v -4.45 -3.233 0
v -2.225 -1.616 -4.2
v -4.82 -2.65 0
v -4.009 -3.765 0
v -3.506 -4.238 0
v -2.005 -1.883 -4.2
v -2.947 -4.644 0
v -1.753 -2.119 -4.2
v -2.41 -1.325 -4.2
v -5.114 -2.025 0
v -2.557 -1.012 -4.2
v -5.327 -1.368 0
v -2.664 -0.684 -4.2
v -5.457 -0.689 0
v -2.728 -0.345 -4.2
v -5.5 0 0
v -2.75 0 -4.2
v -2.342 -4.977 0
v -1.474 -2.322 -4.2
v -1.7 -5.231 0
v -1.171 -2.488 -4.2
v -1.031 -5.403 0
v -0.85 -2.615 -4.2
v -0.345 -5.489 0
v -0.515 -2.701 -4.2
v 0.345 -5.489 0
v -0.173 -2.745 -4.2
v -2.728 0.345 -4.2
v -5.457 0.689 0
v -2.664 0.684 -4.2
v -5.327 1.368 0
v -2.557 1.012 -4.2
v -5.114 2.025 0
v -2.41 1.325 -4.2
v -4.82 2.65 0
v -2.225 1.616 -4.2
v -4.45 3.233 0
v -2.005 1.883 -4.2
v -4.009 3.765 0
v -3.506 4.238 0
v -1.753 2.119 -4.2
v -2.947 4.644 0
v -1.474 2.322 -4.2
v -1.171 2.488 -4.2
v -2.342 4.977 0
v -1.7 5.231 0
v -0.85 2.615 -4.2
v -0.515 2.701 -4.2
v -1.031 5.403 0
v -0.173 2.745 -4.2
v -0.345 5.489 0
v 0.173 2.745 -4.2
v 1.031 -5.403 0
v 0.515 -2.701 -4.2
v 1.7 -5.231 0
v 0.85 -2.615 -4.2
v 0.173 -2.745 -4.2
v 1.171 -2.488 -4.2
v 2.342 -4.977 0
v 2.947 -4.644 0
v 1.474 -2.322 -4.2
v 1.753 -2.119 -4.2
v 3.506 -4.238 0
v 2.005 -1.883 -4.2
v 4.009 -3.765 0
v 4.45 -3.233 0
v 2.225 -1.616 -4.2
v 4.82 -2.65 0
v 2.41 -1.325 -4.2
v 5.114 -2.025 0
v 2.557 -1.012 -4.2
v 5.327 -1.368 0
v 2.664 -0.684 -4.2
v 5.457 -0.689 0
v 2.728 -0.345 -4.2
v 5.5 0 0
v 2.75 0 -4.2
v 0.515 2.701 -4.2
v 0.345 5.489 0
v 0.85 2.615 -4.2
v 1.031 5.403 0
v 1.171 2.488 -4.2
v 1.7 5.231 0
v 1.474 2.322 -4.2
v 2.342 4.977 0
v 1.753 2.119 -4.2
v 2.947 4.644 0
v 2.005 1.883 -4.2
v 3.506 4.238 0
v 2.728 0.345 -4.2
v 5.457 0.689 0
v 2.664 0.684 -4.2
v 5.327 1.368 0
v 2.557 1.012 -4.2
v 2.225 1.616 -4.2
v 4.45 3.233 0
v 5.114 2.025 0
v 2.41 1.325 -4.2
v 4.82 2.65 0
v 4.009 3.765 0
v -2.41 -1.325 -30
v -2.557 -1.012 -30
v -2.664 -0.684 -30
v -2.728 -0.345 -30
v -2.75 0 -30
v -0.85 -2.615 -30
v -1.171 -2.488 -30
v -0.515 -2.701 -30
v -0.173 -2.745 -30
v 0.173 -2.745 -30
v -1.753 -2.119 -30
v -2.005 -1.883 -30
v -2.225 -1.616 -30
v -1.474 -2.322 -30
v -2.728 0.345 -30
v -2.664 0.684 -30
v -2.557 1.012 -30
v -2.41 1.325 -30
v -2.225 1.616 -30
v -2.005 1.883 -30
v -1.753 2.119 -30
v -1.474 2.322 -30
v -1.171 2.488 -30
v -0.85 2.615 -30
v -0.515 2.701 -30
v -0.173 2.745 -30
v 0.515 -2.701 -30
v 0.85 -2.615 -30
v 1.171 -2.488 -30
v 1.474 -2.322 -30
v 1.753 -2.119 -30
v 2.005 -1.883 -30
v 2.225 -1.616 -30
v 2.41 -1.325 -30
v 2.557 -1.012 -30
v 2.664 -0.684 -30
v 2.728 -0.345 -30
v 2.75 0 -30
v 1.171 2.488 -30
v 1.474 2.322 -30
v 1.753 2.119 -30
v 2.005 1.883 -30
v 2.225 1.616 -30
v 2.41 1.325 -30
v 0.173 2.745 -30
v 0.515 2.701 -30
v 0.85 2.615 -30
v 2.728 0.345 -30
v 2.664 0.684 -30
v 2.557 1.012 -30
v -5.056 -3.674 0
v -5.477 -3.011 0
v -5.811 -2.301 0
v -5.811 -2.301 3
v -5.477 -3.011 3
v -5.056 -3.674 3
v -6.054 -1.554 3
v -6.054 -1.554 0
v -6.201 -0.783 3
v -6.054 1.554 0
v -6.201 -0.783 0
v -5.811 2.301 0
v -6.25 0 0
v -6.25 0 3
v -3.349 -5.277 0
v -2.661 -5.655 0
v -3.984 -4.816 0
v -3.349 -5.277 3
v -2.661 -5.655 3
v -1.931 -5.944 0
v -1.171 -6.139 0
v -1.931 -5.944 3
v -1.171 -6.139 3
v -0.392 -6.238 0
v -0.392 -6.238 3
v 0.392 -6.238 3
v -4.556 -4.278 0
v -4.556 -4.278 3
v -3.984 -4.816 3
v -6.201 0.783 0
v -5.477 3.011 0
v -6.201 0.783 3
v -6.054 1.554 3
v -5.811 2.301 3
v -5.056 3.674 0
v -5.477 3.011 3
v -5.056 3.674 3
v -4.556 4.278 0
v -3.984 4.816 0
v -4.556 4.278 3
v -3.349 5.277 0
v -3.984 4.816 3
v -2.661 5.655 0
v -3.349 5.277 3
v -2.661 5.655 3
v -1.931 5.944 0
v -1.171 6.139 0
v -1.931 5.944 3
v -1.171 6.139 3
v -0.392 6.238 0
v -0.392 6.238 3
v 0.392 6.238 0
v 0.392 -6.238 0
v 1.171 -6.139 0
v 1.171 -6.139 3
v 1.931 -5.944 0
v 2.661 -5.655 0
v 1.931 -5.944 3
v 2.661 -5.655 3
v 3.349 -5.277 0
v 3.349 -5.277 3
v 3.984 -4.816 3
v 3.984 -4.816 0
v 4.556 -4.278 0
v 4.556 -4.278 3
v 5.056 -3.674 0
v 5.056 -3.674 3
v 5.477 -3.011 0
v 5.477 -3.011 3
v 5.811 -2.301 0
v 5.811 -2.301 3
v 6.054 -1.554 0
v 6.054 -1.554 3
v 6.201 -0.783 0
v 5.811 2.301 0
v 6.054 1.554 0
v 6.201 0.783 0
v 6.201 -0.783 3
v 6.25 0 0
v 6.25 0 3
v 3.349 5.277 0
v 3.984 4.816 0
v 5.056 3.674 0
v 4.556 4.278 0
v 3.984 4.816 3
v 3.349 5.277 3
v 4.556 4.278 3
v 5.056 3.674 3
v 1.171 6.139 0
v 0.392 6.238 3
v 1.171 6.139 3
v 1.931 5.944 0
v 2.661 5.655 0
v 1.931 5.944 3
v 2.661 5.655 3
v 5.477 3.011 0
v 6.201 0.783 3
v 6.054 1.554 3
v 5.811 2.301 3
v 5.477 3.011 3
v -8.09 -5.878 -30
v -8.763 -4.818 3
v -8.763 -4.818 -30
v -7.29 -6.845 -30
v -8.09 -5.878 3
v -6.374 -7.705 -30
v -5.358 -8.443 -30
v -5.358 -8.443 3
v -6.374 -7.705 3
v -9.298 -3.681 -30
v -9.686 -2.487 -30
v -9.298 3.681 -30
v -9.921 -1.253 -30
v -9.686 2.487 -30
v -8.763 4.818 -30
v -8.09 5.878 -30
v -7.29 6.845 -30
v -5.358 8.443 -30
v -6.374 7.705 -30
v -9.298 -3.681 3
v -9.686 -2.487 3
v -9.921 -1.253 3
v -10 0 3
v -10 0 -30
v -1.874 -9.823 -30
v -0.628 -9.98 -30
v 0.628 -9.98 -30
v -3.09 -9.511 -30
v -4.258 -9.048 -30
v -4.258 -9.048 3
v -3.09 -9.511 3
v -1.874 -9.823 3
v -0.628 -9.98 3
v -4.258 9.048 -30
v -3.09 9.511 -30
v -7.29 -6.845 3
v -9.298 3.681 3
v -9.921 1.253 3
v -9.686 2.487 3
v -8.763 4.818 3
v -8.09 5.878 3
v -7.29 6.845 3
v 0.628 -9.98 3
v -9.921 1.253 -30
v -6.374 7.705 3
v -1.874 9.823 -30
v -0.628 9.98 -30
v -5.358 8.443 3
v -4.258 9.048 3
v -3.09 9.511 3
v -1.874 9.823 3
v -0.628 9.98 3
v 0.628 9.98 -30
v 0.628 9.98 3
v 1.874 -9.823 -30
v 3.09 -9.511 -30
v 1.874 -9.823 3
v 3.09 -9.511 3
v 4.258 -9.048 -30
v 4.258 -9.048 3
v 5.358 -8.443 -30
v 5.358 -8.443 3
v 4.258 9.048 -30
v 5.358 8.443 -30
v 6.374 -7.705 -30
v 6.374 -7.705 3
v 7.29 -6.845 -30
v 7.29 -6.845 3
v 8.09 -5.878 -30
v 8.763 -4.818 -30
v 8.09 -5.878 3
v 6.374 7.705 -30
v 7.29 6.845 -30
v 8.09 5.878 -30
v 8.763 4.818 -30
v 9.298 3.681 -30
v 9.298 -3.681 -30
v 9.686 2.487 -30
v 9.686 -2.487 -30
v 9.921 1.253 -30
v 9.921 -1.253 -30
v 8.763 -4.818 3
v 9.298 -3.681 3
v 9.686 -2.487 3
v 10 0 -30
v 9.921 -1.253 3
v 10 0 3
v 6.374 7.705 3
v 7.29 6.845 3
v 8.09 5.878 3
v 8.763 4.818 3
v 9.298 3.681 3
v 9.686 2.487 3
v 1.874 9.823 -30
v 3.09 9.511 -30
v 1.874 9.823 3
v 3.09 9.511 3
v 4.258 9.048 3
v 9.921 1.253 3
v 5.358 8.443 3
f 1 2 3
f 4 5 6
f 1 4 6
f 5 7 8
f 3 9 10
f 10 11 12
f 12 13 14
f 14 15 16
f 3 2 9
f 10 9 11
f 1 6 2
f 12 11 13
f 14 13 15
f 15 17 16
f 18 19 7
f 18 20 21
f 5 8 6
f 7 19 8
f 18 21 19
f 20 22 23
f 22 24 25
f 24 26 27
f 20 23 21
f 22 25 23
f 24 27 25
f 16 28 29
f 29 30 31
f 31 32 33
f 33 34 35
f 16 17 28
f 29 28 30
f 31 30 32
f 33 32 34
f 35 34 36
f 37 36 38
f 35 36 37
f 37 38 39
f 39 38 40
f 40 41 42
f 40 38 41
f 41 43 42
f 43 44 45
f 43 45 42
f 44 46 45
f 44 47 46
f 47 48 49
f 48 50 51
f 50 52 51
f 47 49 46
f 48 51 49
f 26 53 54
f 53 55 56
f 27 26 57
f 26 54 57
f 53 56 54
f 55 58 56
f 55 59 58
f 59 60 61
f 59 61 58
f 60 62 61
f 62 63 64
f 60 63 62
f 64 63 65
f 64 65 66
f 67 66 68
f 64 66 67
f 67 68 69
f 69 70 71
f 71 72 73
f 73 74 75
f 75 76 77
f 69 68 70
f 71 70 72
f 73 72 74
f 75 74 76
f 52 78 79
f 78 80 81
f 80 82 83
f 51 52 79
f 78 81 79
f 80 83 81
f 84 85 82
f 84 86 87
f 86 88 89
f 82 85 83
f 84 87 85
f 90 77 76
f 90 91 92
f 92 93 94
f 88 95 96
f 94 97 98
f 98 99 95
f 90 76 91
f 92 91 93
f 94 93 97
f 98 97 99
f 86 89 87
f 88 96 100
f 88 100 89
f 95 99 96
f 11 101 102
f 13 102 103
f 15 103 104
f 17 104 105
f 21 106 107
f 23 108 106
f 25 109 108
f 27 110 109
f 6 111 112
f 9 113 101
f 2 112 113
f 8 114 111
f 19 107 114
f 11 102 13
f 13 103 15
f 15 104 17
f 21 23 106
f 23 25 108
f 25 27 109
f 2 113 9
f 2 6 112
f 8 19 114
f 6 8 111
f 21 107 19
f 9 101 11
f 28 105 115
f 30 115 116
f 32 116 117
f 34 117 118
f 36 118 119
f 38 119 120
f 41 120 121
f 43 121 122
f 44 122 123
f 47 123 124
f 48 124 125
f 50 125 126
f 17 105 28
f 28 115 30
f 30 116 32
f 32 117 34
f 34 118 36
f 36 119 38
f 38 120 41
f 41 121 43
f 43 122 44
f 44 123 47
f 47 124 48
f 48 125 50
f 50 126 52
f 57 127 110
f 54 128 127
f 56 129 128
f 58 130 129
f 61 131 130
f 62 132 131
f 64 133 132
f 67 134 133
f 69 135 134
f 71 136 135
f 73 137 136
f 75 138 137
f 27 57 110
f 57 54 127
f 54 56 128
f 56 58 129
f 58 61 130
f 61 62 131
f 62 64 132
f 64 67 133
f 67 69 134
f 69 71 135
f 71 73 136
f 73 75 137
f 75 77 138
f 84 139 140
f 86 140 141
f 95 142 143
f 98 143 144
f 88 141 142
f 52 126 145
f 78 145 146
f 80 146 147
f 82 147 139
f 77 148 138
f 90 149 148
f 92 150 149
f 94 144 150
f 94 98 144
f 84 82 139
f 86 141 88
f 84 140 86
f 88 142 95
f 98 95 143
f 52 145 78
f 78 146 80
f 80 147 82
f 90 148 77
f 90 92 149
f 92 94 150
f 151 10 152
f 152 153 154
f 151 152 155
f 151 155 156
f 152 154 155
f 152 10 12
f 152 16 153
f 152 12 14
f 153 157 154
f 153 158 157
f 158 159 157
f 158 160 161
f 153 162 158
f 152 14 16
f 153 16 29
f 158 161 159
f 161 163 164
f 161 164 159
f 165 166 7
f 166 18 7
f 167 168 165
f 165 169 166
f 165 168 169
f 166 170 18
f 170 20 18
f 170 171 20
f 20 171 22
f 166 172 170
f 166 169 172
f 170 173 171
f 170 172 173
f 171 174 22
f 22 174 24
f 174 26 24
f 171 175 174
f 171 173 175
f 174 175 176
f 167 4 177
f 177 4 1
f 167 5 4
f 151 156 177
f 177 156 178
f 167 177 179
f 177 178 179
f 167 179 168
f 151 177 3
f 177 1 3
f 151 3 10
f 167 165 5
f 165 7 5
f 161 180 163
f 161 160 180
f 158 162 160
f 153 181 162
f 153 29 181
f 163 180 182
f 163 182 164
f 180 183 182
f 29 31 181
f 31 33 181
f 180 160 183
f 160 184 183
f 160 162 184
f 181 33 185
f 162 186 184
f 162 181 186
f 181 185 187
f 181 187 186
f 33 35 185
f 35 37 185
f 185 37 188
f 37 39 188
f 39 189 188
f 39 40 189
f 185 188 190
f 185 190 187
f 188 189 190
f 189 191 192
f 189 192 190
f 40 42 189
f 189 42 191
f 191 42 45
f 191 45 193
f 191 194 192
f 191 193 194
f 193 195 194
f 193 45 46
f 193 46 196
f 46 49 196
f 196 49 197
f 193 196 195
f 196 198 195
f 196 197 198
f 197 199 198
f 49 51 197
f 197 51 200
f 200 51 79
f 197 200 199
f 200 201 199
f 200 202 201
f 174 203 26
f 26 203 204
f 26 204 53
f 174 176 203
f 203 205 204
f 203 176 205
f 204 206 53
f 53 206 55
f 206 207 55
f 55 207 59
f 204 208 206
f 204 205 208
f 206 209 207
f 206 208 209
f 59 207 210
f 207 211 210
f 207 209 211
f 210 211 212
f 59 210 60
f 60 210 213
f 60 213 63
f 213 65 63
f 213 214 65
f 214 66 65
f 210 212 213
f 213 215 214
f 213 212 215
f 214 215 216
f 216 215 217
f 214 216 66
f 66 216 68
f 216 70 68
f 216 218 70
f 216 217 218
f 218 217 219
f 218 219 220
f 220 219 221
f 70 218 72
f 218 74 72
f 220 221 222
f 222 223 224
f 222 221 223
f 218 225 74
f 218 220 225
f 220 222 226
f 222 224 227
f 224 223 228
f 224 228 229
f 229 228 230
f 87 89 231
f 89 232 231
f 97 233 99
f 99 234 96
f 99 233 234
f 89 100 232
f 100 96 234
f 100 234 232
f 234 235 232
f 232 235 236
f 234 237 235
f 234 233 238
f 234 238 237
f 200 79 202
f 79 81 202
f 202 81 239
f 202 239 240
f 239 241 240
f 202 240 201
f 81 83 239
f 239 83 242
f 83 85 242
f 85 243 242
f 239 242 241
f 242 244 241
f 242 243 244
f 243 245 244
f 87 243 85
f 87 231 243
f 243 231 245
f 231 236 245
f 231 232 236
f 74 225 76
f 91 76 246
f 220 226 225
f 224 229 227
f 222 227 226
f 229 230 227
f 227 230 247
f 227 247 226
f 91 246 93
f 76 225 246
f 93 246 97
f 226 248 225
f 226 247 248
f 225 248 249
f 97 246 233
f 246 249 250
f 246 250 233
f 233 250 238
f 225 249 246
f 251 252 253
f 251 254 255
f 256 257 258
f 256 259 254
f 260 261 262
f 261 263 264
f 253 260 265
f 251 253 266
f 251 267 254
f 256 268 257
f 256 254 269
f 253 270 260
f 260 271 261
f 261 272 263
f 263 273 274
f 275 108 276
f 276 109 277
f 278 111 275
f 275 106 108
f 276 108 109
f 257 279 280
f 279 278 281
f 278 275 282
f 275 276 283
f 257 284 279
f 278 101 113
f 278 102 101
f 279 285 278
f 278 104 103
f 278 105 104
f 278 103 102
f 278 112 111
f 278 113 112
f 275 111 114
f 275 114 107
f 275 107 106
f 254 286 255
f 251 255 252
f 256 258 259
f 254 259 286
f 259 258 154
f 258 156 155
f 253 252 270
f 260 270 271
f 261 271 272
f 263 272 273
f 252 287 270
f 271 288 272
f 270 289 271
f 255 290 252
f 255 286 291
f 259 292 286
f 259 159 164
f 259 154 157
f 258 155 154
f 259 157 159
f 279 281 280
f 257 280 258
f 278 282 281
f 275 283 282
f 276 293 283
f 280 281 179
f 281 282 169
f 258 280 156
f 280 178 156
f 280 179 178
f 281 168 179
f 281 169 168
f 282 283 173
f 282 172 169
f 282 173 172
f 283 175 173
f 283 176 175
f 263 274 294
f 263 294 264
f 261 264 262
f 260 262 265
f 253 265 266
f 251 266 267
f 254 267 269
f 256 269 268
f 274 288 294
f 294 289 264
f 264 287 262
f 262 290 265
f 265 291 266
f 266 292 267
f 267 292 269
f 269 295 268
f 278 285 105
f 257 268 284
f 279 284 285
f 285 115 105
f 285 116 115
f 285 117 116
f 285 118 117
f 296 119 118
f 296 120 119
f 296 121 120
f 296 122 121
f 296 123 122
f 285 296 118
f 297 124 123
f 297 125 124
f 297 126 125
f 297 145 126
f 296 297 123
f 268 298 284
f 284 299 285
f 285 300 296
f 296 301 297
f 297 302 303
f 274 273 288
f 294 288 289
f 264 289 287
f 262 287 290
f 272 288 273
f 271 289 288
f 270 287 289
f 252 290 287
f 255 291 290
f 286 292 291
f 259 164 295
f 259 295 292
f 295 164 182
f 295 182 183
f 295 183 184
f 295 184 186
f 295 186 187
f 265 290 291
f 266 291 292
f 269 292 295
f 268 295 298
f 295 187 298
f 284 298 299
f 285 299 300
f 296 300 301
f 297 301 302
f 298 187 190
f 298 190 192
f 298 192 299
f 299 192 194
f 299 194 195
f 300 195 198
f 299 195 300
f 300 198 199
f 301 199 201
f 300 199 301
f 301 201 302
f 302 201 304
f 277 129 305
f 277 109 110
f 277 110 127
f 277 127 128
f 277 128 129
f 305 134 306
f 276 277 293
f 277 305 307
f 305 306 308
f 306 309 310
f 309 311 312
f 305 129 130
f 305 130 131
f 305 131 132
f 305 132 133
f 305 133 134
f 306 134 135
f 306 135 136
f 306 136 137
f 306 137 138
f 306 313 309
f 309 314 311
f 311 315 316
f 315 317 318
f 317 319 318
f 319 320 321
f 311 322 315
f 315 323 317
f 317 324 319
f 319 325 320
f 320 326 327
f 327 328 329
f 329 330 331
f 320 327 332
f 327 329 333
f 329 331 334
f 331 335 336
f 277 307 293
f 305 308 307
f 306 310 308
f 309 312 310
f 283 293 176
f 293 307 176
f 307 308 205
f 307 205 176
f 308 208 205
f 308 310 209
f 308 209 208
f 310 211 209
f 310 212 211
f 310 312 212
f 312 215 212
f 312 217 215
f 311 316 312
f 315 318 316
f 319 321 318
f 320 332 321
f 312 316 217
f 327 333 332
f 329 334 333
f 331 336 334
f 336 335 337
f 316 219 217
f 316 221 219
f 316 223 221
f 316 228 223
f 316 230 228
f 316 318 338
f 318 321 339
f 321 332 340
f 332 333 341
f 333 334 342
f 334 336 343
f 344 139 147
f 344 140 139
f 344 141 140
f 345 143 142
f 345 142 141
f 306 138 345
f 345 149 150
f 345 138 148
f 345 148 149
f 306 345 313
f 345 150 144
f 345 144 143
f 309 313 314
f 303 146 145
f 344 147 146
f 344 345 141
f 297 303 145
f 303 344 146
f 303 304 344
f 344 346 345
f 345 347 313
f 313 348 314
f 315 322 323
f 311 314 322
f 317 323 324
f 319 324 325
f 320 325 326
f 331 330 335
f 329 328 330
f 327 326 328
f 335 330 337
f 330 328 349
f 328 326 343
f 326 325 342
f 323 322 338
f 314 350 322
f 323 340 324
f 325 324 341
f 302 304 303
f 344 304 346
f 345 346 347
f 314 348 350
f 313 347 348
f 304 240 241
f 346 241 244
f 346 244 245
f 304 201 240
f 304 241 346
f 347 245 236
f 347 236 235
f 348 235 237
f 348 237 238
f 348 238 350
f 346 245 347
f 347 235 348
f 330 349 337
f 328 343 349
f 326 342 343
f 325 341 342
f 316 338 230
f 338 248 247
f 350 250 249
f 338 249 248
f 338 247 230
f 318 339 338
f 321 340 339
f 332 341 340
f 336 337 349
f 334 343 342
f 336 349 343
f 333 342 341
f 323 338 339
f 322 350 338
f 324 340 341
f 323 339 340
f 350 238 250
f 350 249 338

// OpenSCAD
$fn = 50;


difference() {
	union() {
		translate(v = [0, 0, -30.0000000000]) {
			cylinder(h = 33, r = 10.0000000000);
		}
	}
	union() {
		translate(v = [0, 0, 0]) {
			rotate(a = [0, 0, 0]) {
				difference() {
					union() {
						translate(v = [0, 0, -33.0000000000]) {
							cylinder(h = 33, r = 2.2500000000);
						}
						translate(v = [0, 0, -4.2000000000]) {
							cylinder(h = 4.2000000000, r1 = 2.7500000000, r2 = 5.5000000000);
						}
						translate(v = [0, 0, -33.0000000000]) {
							cylinder(h = 33, r = 2.7500000000);
						}
						translate(v = [0, 0, -33.0000000000]) {
							cylinder(h = 33, r = 2.2500000000);
						}
					}
					union();
				}
			}
		}
		#cylinder(h = 3, r = 6.2500000000);
	}
}
